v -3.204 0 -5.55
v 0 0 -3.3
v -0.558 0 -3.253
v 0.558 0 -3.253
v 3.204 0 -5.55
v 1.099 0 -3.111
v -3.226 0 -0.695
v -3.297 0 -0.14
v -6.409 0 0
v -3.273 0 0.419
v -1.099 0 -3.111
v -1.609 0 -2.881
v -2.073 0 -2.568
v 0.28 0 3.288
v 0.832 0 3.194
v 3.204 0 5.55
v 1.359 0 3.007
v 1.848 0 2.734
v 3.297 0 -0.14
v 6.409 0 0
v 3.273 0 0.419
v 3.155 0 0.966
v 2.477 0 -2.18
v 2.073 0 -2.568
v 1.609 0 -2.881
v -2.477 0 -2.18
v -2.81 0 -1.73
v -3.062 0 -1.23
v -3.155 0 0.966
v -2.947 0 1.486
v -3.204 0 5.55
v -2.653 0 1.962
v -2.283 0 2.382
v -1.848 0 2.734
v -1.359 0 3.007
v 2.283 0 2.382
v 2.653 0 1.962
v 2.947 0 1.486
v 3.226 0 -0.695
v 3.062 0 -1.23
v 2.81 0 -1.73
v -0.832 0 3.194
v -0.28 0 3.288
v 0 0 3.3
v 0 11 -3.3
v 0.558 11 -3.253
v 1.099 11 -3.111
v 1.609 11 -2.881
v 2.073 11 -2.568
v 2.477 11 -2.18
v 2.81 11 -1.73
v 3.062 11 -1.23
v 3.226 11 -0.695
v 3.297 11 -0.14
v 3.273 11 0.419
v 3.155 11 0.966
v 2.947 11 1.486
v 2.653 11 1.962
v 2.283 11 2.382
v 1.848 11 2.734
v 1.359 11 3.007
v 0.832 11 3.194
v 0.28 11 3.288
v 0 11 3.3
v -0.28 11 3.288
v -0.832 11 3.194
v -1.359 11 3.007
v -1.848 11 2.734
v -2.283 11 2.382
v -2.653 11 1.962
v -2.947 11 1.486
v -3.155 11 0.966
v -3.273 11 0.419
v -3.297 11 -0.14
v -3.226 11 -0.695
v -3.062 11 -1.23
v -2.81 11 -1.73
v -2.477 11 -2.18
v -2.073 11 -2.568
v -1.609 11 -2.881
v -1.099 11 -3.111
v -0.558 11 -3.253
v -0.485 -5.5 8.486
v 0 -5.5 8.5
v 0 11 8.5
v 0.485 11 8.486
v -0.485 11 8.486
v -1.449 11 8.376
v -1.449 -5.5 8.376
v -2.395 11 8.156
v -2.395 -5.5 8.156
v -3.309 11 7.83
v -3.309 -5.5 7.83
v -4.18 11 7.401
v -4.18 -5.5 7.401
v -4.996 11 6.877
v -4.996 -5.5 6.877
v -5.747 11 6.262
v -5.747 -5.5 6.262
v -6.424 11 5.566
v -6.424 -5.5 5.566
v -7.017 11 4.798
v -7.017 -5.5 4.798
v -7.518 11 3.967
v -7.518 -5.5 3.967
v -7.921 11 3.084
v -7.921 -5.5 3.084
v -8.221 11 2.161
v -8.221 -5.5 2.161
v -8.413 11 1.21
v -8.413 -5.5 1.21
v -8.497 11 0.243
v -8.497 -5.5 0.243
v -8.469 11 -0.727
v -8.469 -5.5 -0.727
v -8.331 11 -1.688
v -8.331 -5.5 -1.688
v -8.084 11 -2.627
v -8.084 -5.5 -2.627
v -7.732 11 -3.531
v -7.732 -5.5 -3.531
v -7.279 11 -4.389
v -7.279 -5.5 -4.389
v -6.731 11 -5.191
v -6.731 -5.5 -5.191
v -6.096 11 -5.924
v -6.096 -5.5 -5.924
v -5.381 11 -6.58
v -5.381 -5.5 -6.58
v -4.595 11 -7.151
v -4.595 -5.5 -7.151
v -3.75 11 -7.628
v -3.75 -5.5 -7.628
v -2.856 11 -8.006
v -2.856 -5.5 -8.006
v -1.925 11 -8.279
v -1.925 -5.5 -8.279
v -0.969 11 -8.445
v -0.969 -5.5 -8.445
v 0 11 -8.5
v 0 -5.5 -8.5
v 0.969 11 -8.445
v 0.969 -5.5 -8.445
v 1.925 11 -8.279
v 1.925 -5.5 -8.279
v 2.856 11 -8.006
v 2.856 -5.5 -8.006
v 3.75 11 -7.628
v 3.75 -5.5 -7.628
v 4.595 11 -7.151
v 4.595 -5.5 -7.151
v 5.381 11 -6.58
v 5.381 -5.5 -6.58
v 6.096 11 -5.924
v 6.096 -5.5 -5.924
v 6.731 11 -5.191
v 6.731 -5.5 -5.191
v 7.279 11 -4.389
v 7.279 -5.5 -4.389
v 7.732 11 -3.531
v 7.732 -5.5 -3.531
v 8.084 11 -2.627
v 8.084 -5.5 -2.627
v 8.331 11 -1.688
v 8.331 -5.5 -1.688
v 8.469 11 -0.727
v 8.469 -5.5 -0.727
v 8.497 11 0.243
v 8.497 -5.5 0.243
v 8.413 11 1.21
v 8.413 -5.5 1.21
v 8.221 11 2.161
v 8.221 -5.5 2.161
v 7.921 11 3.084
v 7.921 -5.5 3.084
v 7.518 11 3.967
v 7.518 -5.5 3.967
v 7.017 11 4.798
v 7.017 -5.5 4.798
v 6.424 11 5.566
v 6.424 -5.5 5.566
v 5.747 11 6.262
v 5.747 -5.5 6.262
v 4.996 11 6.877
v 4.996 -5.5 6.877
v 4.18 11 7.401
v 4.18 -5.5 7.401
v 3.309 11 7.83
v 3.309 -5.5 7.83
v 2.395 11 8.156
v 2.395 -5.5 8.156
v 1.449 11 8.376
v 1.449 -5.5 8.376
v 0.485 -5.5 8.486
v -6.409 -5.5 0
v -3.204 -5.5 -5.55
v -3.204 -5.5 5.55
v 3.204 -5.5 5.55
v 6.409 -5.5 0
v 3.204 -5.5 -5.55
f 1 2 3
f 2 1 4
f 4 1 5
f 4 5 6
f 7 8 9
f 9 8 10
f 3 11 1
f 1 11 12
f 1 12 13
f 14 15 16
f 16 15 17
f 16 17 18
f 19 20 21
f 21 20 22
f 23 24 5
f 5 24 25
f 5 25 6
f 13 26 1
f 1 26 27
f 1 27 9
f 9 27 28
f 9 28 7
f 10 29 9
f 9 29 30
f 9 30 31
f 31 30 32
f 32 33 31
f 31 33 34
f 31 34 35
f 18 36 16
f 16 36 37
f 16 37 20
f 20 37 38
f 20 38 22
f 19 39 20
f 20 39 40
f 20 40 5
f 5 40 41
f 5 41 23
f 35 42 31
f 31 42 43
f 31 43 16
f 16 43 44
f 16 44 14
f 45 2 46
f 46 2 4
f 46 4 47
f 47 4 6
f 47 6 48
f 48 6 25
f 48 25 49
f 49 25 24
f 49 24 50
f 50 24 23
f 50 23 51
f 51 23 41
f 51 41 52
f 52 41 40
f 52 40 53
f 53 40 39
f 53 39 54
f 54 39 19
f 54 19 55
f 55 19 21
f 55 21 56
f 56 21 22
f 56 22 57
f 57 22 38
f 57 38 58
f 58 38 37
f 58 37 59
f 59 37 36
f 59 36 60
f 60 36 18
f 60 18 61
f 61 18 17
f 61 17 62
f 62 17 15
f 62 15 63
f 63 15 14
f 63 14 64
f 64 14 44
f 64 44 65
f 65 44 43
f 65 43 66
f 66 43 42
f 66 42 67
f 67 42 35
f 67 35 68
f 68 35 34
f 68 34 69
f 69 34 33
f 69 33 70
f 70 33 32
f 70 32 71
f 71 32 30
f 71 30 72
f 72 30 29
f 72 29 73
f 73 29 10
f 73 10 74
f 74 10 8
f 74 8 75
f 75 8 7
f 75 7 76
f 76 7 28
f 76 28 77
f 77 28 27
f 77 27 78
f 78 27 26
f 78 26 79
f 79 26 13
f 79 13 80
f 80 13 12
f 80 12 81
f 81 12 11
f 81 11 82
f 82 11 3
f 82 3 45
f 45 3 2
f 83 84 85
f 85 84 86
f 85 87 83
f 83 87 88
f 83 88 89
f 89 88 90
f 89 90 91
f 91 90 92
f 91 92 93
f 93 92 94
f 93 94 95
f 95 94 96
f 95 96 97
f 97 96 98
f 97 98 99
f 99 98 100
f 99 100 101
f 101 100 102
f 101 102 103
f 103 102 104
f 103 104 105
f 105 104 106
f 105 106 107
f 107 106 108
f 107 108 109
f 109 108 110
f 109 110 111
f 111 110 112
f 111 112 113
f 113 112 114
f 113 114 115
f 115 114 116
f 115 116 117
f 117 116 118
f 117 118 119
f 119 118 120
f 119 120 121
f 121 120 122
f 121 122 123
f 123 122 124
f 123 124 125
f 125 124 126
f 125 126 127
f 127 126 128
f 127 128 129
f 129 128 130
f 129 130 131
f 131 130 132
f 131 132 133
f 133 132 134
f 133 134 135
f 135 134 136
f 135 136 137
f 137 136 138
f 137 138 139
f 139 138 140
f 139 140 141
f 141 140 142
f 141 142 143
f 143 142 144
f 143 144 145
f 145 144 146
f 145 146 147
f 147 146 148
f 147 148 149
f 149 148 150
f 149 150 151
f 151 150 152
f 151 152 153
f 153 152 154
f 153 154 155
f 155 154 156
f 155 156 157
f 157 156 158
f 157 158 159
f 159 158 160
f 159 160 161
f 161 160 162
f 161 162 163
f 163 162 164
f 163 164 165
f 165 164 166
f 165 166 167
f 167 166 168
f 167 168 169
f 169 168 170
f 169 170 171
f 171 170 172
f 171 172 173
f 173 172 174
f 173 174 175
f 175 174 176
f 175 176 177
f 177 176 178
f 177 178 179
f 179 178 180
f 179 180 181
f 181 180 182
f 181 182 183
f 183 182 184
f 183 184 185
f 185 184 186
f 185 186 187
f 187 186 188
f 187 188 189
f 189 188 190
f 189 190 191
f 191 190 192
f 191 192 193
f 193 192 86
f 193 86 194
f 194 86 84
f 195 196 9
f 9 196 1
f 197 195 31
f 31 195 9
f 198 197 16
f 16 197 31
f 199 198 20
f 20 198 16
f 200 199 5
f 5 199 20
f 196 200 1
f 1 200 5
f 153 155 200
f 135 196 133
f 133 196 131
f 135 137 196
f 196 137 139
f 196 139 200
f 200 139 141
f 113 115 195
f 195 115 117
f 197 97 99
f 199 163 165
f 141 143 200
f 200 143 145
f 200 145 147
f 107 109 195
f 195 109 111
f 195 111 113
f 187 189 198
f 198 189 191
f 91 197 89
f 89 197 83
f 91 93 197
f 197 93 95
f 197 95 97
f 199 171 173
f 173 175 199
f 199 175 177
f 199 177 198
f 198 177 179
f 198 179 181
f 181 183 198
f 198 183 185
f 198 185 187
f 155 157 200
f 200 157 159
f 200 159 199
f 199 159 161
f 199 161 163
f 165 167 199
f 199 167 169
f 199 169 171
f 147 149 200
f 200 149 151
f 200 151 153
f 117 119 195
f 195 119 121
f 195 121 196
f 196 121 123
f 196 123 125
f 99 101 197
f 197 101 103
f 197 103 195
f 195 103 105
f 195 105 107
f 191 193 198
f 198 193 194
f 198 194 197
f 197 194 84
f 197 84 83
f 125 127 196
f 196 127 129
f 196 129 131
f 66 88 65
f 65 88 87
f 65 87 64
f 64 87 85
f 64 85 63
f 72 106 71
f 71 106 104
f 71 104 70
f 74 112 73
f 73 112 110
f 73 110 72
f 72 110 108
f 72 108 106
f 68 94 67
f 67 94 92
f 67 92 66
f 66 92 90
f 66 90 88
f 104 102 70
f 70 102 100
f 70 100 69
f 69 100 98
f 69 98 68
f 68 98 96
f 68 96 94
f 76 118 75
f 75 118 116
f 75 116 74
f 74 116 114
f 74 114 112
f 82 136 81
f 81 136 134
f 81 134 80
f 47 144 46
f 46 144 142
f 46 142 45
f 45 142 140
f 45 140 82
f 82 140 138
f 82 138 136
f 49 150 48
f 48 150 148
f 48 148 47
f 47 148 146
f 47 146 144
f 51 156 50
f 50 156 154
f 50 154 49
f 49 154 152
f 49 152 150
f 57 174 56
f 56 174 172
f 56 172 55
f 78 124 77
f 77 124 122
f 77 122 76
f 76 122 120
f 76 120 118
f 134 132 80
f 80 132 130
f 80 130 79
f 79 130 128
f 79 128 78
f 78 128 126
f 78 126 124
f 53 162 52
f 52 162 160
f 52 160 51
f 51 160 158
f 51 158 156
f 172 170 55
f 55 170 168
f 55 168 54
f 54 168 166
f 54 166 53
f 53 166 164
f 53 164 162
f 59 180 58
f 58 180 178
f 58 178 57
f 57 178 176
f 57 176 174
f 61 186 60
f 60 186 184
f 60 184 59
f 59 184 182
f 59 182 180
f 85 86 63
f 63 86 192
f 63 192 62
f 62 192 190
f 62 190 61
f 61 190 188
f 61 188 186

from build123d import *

# Parameters (mm, degrees)
SKETCH2_R           = 8.5
SKETCH2_R_2         = 3.3
BOSS_EXTRUDE1_DEPTH = 2
BOSS_EXTRUDE2_START = -5.5
SKETCH2_4_R         = 8.5
BOSS_EXTRUDE2_DEPTH = 5.5
SKETCH3_R           = 8.5
SKETCH3_R_2         = 3.3
BOSS_EXTRUDE3_DEPTH = 9


with BuildPart() as part:
    # Sketch2 → Boss-Extrude1 (new body)
    with BuildSketch(Plane(origin=(0, 0, 0), x_dir=(1, 0, 0), z_dir=(0, 1, 0))):
        Circle(SKETCH2_R)
        Circle(SKETCH2_R_2, mode=Mode.SUBTRACT)
    extrude(amount=BOSS_EXTRUDE1_DEPTH)

    # Sketch2<4> → Boss-Extrude2 (add)
    with BuildSketch(Plane(origin=(0, 0, 0), x_dir=(1, 0, 0), z_dir=(0, 1, 0)).offset(BOSS_EXTRUDE2_START)):
        Circle(SKETCH2_4_R)
        Polygon((-3.204293994, -5.55), (-6.408587988, 0), (-3.204293994, 5.55), (3.204293994, 5.55), (6.408587988, 0), (3.204293994, -5.55), align=None, mode=Mode.SUBTRACT)
    extrude(amount=BOSS_EXTRUDE2_DEPTH)

    # Sketch3 → Boss-Extrude3 (add)
    with BuildSketch(Plane(origin=(0, 2, 0), x_dir=(1, 0, 0), z_dir=(0, 1, 0))):
        Circle(SKETCH3_R)
        Circle(SKETCH3_R_2, mode=Mode.SUBTRACT)
    extrude(amount=BOSS_EXTRUDE3_DEPTH)


solid = part.part
